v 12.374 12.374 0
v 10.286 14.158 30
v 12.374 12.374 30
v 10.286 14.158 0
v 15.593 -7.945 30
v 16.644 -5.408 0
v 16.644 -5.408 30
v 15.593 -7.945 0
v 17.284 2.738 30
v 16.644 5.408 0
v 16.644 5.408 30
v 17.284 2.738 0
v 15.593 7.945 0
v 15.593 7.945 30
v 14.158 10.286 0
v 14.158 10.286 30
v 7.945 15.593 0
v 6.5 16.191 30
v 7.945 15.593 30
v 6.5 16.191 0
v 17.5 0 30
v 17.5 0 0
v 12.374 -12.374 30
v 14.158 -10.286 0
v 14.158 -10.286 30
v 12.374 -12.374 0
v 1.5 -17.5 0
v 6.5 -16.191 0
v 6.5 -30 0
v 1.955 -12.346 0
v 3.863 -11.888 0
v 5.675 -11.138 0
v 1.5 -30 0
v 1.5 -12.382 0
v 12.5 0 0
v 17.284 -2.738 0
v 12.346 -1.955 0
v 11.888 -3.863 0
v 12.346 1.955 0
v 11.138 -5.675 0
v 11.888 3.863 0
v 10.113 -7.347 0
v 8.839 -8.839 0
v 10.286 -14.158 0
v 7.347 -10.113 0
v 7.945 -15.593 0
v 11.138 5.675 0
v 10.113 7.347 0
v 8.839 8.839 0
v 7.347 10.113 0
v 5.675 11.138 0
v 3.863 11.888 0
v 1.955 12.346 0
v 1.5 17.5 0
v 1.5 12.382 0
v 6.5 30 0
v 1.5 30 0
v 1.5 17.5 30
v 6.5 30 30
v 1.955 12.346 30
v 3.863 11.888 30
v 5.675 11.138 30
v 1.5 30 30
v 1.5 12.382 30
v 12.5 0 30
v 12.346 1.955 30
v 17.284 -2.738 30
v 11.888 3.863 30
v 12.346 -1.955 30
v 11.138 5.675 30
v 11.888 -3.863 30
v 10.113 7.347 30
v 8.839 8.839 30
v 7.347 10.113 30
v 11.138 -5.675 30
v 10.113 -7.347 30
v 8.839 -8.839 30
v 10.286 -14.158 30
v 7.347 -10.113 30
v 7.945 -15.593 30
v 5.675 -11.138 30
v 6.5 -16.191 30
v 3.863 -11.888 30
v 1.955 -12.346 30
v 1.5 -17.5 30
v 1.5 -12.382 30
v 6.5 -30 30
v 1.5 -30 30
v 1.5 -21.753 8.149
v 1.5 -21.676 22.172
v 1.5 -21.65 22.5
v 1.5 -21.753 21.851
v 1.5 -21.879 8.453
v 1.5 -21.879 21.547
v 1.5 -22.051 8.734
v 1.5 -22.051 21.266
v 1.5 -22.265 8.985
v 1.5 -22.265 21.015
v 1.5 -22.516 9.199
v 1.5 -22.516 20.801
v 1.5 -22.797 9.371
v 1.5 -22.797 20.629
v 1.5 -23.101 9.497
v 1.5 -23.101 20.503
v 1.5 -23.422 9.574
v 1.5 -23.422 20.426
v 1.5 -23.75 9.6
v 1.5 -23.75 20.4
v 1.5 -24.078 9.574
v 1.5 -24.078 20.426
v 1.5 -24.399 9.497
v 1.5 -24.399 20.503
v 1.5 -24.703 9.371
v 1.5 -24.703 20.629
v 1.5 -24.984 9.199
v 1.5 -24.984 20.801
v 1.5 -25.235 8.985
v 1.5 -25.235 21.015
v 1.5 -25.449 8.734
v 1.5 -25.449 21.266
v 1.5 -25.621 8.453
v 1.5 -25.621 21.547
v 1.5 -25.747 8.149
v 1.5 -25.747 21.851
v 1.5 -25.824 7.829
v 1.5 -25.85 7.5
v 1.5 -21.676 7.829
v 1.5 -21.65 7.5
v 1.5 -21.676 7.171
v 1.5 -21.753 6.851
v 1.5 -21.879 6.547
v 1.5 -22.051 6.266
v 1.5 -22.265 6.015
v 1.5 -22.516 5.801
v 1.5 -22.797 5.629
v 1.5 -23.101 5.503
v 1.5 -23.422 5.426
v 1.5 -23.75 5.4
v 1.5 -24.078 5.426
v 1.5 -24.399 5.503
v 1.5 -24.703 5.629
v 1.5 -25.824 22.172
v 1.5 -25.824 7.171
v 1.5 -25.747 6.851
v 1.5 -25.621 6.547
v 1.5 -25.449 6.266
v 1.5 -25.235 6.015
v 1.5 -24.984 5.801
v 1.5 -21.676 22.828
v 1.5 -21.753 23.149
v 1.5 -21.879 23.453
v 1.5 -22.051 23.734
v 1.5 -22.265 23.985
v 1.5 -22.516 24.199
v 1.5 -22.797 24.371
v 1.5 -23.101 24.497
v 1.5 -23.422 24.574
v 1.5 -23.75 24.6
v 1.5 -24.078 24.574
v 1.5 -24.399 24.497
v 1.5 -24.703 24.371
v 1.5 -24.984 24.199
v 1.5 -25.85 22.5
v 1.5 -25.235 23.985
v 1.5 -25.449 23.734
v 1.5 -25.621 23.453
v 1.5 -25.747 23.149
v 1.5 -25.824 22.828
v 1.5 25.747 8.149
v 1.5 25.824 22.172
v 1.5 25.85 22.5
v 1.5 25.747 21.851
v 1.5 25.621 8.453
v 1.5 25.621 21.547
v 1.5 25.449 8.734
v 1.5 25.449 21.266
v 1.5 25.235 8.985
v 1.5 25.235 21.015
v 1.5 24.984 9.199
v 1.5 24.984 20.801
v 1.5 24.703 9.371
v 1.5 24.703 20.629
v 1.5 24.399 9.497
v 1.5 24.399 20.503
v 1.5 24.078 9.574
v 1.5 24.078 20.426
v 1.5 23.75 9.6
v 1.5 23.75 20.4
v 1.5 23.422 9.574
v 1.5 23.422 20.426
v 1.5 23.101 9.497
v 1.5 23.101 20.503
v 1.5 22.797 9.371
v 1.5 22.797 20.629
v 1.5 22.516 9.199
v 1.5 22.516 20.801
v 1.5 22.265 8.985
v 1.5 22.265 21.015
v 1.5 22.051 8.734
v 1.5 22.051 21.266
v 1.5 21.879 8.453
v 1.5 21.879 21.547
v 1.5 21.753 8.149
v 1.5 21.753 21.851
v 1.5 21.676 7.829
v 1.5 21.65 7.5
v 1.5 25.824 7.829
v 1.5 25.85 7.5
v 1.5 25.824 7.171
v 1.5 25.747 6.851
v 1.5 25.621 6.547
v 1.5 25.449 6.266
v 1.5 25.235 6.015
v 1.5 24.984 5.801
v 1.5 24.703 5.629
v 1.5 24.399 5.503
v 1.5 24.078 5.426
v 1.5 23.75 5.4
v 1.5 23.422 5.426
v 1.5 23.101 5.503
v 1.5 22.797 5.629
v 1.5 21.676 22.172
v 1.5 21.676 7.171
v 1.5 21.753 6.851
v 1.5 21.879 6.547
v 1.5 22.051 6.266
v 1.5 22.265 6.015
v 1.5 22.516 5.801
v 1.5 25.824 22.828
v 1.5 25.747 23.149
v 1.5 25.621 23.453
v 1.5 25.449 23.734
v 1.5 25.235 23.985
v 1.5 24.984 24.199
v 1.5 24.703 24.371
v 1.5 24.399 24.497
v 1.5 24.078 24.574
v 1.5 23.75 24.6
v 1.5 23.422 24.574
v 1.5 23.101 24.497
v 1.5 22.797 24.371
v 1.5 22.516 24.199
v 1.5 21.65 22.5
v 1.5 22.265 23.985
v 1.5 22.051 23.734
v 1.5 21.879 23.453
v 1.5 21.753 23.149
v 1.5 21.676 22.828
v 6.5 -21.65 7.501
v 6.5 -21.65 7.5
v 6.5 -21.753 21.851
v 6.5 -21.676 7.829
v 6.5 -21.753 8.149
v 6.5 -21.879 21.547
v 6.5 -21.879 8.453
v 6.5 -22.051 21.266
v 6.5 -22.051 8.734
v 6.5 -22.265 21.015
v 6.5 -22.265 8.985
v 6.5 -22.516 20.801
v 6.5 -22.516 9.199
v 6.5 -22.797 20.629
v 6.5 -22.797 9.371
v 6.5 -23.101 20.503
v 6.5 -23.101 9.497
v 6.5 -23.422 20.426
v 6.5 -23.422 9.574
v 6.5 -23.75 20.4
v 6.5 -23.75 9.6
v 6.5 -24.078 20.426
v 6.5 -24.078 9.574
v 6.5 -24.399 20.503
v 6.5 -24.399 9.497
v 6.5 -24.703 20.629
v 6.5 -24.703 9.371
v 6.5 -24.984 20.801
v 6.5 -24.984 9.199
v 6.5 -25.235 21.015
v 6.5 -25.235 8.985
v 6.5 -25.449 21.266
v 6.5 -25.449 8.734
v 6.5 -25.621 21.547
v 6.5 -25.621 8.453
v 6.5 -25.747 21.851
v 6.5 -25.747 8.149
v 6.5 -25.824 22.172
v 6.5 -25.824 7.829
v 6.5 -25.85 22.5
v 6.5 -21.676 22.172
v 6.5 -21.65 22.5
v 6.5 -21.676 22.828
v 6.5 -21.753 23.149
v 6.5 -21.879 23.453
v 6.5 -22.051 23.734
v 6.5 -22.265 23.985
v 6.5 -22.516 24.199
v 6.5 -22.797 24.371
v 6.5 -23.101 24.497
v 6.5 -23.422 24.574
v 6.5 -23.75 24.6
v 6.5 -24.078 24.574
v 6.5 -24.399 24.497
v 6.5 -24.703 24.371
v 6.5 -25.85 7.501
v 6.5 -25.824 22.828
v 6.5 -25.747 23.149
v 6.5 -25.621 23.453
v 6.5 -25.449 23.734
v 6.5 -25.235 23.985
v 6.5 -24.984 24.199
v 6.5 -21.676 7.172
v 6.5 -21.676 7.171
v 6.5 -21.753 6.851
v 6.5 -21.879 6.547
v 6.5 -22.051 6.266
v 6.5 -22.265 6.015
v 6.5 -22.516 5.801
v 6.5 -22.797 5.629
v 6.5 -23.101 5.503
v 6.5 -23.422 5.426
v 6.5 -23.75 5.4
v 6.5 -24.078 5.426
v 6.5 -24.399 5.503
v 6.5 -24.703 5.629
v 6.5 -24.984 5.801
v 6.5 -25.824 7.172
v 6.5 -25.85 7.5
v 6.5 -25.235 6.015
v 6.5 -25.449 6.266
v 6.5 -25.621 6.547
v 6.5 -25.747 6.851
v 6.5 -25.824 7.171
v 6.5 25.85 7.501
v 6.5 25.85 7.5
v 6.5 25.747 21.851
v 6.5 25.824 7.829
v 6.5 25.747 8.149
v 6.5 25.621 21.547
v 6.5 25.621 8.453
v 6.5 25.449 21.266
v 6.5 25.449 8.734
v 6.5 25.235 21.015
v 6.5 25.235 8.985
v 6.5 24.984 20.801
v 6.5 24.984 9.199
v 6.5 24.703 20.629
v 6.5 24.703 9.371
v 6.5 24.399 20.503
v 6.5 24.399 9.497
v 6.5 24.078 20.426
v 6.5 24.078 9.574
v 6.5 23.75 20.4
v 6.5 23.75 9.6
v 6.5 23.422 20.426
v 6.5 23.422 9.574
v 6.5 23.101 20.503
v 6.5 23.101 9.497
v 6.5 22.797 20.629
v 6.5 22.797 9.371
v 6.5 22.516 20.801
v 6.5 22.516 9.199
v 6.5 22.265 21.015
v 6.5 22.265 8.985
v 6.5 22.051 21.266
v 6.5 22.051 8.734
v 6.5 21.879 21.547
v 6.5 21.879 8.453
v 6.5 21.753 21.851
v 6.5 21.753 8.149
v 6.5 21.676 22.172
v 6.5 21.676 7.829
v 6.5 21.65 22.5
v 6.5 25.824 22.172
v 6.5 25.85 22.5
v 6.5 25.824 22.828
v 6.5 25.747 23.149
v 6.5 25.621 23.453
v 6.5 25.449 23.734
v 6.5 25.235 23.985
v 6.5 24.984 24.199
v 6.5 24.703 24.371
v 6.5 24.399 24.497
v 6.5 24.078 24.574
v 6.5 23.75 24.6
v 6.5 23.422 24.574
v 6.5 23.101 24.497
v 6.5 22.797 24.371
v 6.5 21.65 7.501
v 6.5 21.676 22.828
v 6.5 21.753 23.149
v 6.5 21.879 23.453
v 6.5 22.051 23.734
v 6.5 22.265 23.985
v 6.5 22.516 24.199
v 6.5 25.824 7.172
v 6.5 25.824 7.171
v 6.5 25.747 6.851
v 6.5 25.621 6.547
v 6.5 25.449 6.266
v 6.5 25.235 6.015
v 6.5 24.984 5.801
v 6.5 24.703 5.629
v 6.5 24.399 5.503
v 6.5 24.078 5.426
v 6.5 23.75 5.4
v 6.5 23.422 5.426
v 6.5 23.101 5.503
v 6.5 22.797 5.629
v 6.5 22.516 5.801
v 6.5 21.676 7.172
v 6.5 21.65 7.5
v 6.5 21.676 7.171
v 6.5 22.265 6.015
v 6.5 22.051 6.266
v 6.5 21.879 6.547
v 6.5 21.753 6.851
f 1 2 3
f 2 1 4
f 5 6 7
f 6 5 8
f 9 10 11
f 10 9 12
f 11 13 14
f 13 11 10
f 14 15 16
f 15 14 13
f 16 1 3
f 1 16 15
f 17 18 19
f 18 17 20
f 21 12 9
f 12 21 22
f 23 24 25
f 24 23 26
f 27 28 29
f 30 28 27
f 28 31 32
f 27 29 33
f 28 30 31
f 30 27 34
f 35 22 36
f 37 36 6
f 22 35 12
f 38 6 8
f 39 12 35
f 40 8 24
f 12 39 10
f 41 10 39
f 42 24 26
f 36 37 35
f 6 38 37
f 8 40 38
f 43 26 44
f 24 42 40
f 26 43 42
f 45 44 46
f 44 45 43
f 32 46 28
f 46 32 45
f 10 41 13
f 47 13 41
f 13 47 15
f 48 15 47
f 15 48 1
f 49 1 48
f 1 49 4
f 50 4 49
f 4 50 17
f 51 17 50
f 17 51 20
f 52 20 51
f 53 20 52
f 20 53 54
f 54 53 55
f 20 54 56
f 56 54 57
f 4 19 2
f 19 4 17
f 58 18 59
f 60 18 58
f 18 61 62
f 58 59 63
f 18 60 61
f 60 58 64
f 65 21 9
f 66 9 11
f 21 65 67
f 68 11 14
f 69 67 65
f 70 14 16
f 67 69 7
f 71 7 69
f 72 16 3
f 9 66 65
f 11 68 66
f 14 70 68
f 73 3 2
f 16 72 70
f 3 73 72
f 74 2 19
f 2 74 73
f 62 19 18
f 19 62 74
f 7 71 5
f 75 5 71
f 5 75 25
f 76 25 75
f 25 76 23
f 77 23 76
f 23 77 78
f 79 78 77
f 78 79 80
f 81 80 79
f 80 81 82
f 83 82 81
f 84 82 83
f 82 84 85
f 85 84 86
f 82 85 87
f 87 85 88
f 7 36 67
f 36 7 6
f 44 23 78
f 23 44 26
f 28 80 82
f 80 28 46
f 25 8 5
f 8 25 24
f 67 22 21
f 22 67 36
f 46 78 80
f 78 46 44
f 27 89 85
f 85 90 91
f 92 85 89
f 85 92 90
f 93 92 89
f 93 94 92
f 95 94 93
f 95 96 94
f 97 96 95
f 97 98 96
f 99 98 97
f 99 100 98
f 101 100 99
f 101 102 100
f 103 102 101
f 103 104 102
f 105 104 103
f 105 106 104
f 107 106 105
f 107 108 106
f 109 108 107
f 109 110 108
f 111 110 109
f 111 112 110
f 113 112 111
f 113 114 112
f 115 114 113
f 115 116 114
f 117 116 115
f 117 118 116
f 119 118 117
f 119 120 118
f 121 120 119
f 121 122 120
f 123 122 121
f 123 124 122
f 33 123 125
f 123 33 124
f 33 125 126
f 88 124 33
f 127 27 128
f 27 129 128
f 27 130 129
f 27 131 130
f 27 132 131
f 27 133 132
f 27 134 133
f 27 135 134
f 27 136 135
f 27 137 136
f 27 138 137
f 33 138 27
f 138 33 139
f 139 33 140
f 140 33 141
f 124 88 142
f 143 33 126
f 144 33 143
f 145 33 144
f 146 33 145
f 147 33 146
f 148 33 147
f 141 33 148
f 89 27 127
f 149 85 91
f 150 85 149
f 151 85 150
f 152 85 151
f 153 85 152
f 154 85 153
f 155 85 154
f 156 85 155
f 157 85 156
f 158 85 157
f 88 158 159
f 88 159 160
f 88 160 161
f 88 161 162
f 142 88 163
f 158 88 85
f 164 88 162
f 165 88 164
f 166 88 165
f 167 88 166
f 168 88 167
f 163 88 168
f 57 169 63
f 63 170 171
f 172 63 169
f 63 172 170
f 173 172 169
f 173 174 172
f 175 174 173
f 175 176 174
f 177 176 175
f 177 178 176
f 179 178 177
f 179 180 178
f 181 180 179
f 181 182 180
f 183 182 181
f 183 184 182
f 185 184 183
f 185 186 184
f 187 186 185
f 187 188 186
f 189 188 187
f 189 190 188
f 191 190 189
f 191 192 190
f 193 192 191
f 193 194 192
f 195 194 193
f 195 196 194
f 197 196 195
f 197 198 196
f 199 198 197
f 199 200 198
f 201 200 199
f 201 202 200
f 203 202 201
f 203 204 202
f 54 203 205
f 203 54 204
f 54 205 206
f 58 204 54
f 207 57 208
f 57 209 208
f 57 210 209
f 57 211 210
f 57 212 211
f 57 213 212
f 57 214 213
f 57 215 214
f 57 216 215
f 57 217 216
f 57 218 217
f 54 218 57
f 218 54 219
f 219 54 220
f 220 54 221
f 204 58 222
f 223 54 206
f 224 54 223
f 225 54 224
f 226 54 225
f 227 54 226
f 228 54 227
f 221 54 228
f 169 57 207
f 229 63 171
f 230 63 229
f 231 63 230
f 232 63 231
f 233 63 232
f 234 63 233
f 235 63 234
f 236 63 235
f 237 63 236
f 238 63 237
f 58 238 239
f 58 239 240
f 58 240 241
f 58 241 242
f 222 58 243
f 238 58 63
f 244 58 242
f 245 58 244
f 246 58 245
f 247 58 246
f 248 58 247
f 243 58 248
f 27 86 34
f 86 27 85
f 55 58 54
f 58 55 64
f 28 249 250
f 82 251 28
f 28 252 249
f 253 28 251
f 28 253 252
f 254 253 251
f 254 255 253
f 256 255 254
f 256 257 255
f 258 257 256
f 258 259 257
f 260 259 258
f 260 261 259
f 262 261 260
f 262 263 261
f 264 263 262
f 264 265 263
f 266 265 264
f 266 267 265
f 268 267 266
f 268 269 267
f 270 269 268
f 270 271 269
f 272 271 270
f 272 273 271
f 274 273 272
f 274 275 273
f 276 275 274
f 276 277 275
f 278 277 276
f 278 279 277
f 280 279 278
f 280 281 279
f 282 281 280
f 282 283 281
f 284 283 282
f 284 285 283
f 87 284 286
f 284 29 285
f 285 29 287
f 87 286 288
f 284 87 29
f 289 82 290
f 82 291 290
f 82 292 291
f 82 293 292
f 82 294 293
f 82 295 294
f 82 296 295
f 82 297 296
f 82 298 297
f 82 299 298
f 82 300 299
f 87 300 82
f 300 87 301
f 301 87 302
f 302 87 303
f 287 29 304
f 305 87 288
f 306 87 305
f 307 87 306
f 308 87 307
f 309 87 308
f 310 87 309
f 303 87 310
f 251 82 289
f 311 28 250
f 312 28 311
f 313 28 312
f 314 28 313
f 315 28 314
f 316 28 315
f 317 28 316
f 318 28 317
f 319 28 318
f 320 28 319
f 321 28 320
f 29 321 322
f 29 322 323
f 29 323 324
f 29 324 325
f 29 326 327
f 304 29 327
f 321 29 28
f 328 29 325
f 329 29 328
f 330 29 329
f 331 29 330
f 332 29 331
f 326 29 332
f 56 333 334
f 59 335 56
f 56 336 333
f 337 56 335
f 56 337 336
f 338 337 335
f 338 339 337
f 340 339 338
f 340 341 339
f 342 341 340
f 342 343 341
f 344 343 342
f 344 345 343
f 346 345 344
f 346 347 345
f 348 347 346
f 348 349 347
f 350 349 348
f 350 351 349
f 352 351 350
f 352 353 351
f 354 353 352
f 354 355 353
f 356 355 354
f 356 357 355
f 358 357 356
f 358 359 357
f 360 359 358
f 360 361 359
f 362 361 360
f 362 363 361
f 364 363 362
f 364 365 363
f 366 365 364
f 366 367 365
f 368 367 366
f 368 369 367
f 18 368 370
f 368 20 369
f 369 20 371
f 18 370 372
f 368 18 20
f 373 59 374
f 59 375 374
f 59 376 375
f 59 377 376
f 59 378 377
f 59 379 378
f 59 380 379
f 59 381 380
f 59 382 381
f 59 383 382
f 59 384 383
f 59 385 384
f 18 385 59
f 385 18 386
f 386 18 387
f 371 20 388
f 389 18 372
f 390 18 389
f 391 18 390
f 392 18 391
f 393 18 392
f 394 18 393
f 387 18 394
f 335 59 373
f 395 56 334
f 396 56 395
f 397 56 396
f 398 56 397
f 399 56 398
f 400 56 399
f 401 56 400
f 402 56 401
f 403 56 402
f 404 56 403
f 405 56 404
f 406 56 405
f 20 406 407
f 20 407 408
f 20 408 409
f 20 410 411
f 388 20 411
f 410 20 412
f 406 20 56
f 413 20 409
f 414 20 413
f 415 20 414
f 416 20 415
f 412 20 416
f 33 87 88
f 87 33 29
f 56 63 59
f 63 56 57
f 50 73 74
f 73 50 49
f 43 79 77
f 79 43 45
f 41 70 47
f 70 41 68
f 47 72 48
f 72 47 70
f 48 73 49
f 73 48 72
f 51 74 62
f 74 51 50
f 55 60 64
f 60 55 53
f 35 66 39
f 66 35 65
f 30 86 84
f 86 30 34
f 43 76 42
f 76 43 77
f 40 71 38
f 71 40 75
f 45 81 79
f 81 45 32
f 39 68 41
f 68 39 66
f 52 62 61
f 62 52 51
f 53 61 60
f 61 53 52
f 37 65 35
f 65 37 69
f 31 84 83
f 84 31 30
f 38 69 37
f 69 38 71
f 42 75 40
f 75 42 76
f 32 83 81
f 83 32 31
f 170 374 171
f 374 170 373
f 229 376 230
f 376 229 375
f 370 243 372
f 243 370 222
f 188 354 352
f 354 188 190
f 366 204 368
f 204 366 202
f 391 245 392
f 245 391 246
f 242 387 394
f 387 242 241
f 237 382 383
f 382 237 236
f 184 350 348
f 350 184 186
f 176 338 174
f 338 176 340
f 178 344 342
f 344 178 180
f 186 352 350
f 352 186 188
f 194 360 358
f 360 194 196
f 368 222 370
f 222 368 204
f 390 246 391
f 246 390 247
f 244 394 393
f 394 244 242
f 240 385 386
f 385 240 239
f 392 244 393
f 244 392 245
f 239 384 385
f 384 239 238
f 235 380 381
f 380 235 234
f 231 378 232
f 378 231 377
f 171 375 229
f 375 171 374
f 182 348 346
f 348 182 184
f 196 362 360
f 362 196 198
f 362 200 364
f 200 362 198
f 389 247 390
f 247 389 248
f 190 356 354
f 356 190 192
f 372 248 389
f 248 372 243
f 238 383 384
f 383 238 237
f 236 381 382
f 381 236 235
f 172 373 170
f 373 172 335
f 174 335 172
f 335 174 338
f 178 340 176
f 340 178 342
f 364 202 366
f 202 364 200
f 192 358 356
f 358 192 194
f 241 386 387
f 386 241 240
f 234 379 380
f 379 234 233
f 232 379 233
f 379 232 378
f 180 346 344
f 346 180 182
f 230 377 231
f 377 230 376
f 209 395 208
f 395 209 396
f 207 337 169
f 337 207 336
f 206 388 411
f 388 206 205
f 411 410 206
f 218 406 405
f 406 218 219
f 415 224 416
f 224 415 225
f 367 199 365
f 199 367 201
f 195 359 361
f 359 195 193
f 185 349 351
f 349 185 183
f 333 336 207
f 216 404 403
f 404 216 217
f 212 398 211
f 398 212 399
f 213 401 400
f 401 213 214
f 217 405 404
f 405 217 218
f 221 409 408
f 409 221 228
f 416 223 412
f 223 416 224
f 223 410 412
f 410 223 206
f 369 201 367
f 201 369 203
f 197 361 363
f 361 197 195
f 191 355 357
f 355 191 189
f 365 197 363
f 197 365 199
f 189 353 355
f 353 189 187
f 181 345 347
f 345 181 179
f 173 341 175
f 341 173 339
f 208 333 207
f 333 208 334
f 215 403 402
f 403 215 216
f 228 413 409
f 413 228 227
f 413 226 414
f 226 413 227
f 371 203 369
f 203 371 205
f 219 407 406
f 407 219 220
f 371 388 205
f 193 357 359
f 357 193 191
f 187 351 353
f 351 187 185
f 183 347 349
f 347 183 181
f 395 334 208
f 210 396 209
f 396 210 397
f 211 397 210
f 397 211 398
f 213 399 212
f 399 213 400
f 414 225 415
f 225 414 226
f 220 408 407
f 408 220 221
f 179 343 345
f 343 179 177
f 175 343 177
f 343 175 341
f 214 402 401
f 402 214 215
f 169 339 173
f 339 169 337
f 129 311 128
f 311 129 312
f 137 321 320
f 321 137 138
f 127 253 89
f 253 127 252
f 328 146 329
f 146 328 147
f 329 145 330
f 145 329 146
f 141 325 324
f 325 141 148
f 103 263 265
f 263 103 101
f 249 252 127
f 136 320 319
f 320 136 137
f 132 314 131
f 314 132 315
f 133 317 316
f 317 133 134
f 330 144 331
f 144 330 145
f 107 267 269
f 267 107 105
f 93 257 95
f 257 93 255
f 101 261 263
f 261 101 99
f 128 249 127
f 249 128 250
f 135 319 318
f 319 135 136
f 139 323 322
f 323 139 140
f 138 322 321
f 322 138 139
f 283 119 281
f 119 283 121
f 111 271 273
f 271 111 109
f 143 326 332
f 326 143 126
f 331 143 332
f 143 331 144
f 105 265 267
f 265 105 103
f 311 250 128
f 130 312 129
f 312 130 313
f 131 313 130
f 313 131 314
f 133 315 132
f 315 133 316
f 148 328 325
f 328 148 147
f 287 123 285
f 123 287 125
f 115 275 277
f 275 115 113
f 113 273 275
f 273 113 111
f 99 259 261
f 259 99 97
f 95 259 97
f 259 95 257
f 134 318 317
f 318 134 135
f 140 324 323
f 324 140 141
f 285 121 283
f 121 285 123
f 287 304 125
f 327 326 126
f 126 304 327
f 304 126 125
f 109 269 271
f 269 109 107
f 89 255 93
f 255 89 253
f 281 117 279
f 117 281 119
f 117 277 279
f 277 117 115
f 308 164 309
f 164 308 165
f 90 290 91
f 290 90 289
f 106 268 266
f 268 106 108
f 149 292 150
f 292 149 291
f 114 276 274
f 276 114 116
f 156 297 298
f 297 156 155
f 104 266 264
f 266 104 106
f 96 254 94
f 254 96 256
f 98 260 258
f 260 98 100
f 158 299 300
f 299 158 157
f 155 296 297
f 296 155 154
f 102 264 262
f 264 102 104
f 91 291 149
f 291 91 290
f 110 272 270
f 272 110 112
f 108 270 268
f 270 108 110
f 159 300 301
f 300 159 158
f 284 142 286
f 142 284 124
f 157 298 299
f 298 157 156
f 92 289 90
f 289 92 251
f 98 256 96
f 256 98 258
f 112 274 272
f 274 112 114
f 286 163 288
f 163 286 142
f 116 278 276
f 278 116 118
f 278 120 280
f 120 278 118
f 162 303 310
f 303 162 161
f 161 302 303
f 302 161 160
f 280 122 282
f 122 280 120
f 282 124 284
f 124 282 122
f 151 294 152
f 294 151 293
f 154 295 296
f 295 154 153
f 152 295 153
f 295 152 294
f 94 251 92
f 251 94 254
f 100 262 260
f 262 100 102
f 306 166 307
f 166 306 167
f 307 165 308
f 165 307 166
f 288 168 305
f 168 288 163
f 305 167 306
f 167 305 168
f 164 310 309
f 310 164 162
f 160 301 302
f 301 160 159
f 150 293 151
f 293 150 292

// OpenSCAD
// file: ../SRC/ISLHOLDER01A_D04.scad
$fn=40; // model faces resolution.
include <../configuration2.scad>


//Drzak na sloup - cast bez drzaku anemometru
module ISLHOLDER01A_D04(){
	
difference()
    {
    union()
        {
        //základní válec
        cylinder(h=D02_vyska_uchytky,r=(D02_prumer_obruby+2*D02_sila_materialu)/2,center=true);
		//úchytové plošky		
        translate([D02_dotahova_vzdalenost+D02_sila_materialu/2,0,0]){cube([D02_sila_materialu,D02_delka_celeho_uchytu,D02_vyska_uchytky],center=true);}
		}
    
    //válec na odečet
    cylinder(h=D02_vyska_uchytky+0.01,r=D02_prumer_obruby/2,center=true);     
	        
    //kvádr na odecet
	translate([D02_dotahova_vzdalenost-(D02_prumer_obruby+2*D02_sila_materialu)/2,0,0]){cube([D02_prumer_obruby+2*D02_sila_materialu,D02_prumer_obruby+2*D02_sila_materialu,D02_vyska_uchytky+0.01],center=true);}
		
	//otvory na sroub
	translate([D02_dotahova_vzdalenost,(D02_delka_celeho_uchytu/2-D02_prumer_obruby/2-D02_sila_materialu)/2+D02_prumer_obruby/2+D02_sila_materialu,D02_vyska_uchytky/4]){rotate([0,90,0]){cylinder(h=D02_sila_materialu+0.01,r=D02_prumer_uchytneho_sroubu/2);}}
    
     //drzak matky
    translate([D02_dotahova_vzdalenost+D02_sila_materialu-D02_vyska_matky,(D02_delka_celeho_uchytu/2-D02_prumer_obruby/2-D02_sila_materialu)/2+D02_prumer_obruby/2+D02_sila_materialu,D02_vyska_uchytky/4]){rotate([0,90,0]){ cylinder (h = D02_vyska_matky+0.01, r= (D02_sirka_matky+0.2)/2, $fn=6);}}
   
     
        
    translate([D02_dotahova_vzdalenost,(D02_delka_celeho_uchytu/2-D02_prumer_obruby/2-D02_sila_materialu)/2+D02_prumer_obruby/2+D02_sila_materialu,-D02_vyska_uchytky/4]){rotate([0,90,0]){cylinder(h=D02_sila_materialu+0.01,r=D02_prumer_uchytneho_sroubu/2);}}
    
     //drzak matky
    translate([D02_dotahova_vzdalenost+D02_sila_materialu-D02_vyska_matky,(D02_delka_celeho_uchytu/2-D02_prumer_obruby/2-D02_sila_materialu)/2+D02_prumer_obruby/2+D02_sila_materialu,-D02_vyska_uchytky/4]){rotate([0,90,0]){ cylinder (h = D02_vyska_matky+0.01, r= (D02_sirka_matky+0.2)/2, $fn=6);}}
        
	translate([D02_dotahova_vzdalenost,-((D02_delka_celeho_uchytu/2-D02_prumer_obruby/2-D02_sila_materialu)/2+D02_prumer_obruby/2+D02_sila_materialu),-D02_vyska_uchytky/4]){rotate([0,90,0]){cylinder(h=D02_sila_materialu+0.01,r=D02_prumer_uchytneho_sroubu/2);}}
    
     //drzak matky
    translate([D02_dotahova_vzdalenost+D02_sila_materialu-D02_vyska_matky,-((D02_delka_celeho_uchytu/2-D02_prumer_obruby/2-D02_sila_materialu)/2+D02_prumer_obruby/2+D02_sila_materialu),-D02_vyska_uchytky/4]){rotate([0,90,0]){ cylinder (h = D02_vyska_matky+0.01, r= (D02_sirka_matky+0.2)/2, $fn=6);}}

    translate([D02_dotahova_vzdalenost,-((D02_delka_celeho_uchytu/2-D02_prumer_obruby/2-D02_sila_materialu)/2+D02_prumer_obruby/2+D02_sila_materialu),D02_vyska_uchytky/4]){rotate([0,90,0]){cylinder(h=D02_sila_materialu+0.01,r=D02_prumer_uchytneho_sroubu/2);}}	
    
     //drzak matky
    translate([D02_dotahova_vzdalenost+D02_sila_materialu-D02_vyska_matky,-((D02_delka_celeho_uchytu/2-D02_prumer_obruby/2-D02_sila_materialu)/2+D02_prumer_obruby/2+D02_sila_materialu),D02_vyska_uchytky/4]){rotate([0,90,0]){ cylinder (h = D02_vyska_matky+0.01, r= (D02_sirka_matky+0.2)/2, $fn=6);}}
	
    }
}

module ISLHOLDER01A_D04_2(){
	
difference()
    {
    union()
        {
        //základní válec
        cylinder(h=D02_vyska_uchytky,r=(D02_prumer_obruby+2*D02_sila_materialu)/2,center=true);
		//úchytové plošky		
        translate([D02_dotahova_vzdalenost+D02_sila_materialu/2,0,0]){cube([D02_sila_materialu,D02_delka_celeho_uchytu,D02_vyska_uchytky],center=true);}
		}
    
    //válec na odečet
    cylinder(h=D02_vyska_uchytky+0.01,r=D02_prumer_obruby/2,center=true);     
	        
    //kvádr na odecet
	translate([D02_dotahova_vzdalenost-(D02_prumer_obruby+2*D02_sila_materialu)/2,0,0]){cube([D02_prumer_obruby+2*D02_sila_materialu,D02_prumer_obruby+2*D02_sila_materialu,D02_vyska_uchytky+0.01],center=true);}
		
	//otvory na sroub
	translate([D02_dotahova_vzdalenost,(D02_delka_celeho_uchytu/2-D02_prumer_obruby/2-D02_sila_materialu)/2+D02_prumer_obruby/2+D02_sila_materialu,D02_vyska_uchytky/4]){rotate([0,90,0]){cylinder(h=D02_sila_materialu+0.01,r=D02_prumer_uchytneho_sroubu/2);}}
    
    
   
     
        
    translate([D02_dotahova_vzdalenost,(D02_delka_celeho_uchytu/2-D02_prumer_obruby/2-D02_sila_materialu)/2+D02_prumer_obruby/2+D02_sila_materialu,-D02_vyska_uchytky/4]){rotate([0,90,0]){cylinder(h=D02_sila_materialu+0.01,r=D02_prumer_uchytneho_sroubu/2);}}
    
     
        
	translate([D02_dotahova_vzdalenost,-((D02_delka_celeho_uchytu/2-D02_prumer_obruby/2-D02_sila_materialu)/2+D02_prumer_obruby/2+D02_sila_materialu),-D02_vyska_uchytky/4]){rotate([0,90,0]){cylinder(h=D02_sila_materialu+0.01,r=D02_prumer_uchytneho_sroubu/2);}}
    
    

    translate([D02_dotahova_vzdalenost,-((D02_delka_celeho_uchytu/2-D02_prumer_obruby/2-D02_sila_materialu)/2+D02_prumer_obruby/2+D02_sila_materialu),D02_vyska_uchytky/4]){rotate([0,90,0]){cylinder(h=D02_sila_materialu+0.01,r=D02_prumer_uchytneho_sroubu/2);}}	
    
    
	
    }
}


//ISLHOLDER01A_D02();
// file: ../configuration2.scad
$fn=40; // model faces resolution.

//Parametry pro D03 a D04
//Nastavení držáku zkumavky
//----------------------------------------------------------------
//----------------------------------------------------------------
//není potřeba měnit
S01_prumer_vnitrni=40;
S01_tolerance_zavit=1.5;

S01_sila_materialu=1.3; //sila výtuhy

//D03 - uchyt velky
D01_material_pod_zavitem=5;
D01_material_za_zavitem=3;
D01_material_pred_zavitem=2;
D01_delka_tyce=20;
D01_sirka_tyce=15;

//D04 - uchyt na sloup
D02_sila_materialu=5;
D02_vyska_uchytky=30;
D02_prumer_obruby=25; //pruměr zkumavky
D02_delka_celeho_uchytu=60;
D02_dotahova_vzdalenost=1.5;
D02_prumer_uchytneho_sroubu=4.2;
D02_sirka_matky=9.1; //pro M4
D02_vyska_matky=3;
// main file
$fn=100; // model faces resolution.
include <../configuration2.scad>
use <../SRC/ISLHOLDER01A_D04.scad>

rotate([0, 0, 0])
      translate([0,0,D02_vyska_uchytky/2])
        ISLHOLDER01A_D04_2();

            
